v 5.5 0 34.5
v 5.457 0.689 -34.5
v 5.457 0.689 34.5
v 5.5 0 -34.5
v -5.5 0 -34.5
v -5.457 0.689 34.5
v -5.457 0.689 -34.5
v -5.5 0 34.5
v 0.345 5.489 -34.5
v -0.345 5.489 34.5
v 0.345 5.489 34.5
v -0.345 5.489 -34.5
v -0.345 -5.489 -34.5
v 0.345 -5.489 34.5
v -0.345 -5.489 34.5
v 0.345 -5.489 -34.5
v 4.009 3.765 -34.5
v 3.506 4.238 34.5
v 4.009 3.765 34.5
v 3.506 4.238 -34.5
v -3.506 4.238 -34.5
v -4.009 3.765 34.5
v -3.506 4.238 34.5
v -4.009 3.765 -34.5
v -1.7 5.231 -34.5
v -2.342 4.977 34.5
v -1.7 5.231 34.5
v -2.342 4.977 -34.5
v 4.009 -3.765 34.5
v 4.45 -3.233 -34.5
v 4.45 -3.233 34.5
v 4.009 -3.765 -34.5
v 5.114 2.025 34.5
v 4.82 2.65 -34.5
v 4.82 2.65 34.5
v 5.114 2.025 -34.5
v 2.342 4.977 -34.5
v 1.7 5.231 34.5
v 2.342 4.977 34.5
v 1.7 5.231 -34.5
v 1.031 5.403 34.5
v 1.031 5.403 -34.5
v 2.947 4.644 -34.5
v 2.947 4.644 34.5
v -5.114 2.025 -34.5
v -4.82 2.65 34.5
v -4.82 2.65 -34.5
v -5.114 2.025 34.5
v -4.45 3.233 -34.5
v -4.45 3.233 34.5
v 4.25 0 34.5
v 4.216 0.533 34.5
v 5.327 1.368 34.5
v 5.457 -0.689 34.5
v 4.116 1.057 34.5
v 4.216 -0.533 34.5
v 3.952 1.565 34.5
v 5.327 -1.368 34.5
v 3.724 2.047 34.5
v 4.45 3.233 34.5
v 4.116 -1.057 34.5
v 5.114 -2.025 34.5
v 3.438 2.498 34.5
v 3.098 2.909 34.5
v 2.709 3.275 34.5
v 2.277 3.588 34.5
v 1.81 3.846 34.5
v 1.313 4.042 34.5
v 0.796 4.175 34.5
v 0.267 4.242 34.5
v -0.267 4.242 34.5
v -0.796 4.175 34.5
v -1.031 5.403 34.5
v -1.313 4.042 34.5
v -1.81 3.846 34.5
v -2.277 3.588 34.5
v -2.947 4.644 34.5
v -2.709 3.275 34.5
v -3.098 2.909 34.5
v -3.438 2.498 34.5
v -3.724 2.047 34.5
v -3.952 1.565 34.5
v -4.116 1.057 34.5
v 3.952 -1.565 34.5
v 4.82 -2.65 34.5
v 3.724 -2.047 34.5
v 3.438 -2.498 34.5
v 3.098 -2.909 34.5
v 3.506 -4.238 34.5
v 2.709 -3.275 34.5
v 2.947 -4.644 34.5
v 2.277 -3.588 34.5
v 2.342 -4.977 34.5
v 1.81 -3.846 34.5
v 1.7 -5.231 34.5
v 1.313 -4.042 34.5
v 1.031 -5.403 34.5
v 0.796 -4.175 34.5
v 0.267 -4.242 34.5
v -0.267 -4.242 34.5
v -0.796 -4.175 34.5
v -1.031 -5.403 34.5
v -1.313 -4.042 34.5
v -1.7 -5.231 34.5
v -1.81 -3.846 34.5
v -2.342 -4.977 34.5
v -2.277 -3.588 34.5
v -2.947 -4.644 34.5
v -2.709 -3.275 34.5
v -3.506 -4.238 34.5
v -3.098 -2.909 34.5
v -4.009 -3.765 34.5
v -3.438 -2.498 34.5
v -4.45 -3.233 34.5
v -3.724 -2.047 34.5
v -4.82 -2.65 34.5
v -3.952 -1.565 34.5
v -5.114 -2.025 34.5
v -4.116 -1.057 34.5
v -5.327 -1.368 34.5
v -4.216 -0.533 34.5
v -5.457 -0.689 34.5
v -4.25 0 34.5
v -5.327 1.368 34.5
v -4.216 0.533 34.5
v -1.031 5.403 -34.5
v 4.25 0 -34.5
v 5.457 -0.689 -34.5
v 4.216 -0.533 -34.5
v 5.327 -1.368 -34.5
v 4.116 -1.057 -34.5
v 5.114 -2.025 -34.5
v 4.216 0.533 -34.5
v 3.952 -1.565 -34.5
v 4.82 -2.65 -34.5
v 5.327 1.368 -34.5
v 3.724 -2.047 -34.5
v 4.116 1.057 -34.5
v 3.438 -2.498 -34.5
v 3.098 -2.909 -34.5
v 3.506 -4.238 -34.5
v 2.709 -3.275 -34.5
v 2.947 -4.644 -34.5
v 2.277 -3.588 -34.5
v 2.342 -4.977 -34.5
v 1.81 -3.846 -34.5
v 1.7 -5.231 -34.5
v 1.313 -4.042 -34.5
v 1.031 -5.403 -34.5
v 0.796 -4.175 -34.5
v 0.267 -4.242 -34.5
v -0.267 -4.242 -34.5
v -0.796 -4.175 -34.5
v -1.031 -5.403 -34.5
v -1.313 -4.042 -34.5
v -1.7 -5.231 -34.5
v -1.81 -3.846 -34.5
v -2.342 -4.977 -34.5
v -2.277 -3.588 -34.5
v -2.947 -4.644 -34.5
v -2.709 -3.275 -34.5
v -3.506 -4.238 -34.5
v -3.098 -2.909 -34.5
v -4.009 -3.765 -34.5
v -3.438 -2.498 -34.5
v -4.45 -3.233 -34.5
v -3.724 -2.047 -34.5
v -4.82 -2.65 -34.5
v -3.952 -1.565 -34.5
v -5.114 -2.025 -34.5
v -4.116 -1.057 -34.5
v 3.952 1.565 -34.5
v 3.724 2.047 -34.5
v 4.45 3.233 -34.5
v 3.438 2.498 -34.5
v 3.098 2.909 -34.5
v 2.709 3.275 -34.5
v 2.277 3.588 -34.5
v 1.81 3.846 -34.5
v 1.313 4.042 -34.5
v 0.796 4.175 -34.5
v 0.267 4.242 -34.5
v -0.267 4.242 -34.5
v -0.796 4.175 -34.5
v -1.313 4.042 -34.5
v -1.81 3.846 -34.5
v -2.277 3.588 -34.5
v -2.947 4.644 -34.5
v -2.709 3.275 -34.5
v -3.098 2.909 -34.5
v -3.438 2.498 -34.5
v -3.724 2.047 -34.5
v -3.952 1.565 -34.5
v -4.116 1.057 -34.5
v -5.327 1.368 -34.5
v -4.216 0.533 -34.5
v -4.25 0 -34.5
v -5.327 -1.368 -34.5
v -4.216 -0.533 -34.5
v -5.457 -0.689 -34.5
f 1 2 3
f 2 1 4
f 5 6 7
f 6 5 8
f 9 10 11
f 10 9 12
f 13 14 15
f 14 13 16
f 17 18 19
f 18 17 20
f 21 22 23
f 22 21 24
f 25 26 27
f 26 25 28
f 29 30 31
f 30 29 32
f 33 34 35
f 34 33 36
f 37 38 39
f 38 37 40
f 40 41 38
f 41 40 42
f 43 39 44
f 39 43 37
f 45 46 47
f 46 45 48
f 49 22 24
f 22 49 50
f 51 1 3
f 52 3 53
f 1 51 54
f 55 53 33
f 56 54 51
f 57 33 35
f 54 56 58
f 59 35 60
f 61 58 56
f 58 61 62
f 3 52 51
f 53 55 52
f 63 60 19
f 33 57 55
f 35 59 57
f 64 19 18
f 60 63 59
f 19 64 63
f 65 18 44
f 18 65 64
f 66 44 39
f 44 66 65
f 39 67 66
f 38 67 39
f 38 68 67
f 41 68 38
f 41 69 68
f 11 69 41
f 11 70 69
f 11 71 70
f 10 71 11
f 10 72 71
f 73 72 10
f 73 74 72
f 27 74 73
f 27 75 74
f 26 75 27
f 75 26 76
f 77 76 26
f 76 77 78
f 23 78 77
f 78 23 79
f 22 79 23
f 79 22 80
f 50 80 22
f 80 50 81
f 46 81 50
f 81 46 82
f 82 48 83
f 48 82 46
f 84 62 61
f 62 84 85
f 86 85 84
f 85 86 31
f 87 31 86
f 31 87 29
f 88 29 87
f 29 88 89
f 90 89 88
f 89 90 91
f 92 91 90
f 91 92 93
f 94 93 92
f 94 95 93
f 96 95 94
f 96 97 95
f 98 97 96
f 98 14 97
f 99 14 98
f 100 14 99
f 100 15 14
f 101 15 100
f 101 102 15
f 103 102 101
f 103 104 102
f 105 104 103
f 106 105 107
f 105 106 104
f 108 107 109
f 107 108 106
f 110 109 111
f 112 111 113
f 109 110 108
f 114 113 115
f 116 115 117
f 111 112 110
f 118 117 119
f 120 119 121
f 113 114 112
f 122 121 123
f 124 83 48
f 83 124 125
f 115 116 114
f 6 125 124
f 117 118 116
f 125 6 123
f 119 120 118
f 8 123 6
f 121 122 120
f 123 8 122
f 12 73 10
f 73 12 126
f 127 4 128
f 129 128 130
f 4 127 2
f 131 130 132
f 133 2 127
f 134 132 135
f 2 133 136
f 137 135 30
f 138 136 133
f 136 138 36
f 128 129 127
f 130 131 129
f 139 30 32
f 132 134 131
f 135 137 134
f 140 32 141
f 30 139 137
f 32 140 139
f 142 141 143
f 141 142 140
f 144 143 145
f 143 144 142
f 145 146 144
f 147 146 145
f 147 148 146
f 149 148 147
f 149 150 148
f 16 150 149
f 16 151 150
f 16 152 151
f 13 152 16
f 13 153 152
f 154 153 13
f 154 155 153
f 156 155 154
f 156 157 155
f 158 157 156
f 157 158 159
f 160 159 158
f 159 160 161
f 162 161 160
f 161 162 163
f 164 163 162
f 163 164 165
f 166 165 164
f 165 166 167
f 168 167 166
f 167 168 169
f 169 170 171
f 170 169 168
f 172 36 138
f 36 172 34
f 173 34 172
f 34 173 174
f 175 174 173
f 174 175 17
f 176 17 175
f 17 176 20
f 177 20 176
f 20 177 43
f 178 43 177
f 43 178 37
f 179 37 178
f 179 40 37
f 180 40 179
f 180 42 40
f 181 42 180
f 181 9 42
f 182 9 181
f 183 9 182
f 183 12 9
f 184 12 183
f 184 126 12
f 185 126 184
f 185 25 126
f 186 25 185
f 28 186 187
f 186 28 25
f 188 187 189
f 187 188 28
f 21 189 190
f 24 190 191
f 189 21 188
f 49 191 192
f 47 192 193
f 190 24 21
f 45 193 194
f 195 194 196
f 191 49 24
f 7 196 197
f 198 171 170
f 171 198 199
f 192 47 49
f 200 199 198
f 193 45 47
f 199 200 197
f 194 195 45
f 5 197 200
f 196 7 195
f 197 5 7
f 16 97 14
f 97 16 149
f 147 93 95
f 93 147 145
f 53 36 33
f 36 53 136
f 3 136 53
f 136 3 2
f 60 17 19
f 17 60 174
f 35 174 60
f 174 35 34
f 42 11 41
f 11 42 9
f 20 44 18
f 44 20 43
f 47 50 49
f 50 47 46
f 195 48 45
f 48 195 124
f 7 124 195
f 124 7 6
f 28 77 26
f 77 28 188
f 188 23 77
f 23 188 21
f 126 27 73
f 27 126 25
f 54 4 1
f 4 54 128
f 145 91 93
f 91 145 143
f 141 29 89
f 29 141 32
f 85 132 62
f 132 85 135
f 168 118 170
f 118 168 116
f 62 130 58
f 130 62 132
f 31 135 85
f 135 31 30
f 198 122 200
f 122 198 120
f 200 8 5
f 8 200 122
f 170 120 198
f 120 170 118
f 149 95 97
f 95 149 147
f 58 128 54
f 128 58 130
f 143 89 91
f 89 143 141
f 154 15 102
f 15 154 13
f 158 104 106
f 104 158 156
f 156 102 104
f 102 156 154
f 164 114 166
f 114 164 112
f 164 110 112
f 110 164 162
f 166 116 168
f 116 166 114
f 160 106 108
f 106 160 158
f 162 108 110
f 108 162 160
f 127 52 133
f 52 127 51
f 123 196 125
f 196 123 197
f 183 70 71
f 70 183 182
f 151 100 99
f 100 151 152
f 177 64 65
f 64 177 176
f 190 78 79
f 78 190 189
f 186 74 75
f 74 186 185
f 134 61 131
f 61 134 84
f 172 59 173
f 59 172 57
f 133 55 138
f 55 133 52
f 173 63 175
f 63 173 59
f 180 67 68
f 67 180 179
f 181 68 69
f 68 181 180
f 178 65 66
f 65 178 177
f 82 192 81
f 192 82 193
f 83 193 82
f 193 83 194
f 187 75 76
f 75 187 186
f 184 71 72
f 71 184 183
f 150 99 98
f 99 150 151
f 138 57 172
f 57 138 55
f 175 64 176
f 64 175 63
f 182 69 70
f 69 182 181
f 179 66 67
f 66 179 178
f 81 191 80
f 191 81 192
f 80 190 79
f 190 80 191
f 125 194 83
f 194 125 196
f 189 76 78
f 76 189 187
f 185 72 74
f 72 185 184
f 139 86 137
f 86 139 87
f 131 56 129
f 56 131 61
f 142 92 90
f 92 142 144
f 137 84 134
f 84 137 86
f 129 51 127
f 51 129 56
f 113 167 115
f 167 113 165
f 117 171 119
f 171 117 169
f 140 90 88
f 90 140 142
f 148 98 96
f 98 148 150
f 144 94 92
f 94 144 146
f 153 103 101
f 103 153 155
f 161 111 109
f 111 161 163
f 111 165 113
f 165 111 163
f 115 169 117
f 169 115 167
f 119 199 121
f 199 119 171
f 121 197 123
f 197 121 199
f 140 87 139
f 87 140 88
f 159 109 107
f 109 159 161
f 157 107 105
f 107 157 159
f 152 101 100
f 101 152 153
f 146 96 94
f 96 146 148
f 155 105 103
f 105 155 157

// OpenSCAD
$fn = 50;


difference() {
	union() {
		translate(v = [0, 0, -34.5000000000]) {
			cylinder(h = 69, r = 5.5000000000);
		}
	}
	union() {
		translate(v = [0, 0, -100.0000000000]) {
			cylinder(h = 200, r = 4.2500000000);
		}
	}
}
